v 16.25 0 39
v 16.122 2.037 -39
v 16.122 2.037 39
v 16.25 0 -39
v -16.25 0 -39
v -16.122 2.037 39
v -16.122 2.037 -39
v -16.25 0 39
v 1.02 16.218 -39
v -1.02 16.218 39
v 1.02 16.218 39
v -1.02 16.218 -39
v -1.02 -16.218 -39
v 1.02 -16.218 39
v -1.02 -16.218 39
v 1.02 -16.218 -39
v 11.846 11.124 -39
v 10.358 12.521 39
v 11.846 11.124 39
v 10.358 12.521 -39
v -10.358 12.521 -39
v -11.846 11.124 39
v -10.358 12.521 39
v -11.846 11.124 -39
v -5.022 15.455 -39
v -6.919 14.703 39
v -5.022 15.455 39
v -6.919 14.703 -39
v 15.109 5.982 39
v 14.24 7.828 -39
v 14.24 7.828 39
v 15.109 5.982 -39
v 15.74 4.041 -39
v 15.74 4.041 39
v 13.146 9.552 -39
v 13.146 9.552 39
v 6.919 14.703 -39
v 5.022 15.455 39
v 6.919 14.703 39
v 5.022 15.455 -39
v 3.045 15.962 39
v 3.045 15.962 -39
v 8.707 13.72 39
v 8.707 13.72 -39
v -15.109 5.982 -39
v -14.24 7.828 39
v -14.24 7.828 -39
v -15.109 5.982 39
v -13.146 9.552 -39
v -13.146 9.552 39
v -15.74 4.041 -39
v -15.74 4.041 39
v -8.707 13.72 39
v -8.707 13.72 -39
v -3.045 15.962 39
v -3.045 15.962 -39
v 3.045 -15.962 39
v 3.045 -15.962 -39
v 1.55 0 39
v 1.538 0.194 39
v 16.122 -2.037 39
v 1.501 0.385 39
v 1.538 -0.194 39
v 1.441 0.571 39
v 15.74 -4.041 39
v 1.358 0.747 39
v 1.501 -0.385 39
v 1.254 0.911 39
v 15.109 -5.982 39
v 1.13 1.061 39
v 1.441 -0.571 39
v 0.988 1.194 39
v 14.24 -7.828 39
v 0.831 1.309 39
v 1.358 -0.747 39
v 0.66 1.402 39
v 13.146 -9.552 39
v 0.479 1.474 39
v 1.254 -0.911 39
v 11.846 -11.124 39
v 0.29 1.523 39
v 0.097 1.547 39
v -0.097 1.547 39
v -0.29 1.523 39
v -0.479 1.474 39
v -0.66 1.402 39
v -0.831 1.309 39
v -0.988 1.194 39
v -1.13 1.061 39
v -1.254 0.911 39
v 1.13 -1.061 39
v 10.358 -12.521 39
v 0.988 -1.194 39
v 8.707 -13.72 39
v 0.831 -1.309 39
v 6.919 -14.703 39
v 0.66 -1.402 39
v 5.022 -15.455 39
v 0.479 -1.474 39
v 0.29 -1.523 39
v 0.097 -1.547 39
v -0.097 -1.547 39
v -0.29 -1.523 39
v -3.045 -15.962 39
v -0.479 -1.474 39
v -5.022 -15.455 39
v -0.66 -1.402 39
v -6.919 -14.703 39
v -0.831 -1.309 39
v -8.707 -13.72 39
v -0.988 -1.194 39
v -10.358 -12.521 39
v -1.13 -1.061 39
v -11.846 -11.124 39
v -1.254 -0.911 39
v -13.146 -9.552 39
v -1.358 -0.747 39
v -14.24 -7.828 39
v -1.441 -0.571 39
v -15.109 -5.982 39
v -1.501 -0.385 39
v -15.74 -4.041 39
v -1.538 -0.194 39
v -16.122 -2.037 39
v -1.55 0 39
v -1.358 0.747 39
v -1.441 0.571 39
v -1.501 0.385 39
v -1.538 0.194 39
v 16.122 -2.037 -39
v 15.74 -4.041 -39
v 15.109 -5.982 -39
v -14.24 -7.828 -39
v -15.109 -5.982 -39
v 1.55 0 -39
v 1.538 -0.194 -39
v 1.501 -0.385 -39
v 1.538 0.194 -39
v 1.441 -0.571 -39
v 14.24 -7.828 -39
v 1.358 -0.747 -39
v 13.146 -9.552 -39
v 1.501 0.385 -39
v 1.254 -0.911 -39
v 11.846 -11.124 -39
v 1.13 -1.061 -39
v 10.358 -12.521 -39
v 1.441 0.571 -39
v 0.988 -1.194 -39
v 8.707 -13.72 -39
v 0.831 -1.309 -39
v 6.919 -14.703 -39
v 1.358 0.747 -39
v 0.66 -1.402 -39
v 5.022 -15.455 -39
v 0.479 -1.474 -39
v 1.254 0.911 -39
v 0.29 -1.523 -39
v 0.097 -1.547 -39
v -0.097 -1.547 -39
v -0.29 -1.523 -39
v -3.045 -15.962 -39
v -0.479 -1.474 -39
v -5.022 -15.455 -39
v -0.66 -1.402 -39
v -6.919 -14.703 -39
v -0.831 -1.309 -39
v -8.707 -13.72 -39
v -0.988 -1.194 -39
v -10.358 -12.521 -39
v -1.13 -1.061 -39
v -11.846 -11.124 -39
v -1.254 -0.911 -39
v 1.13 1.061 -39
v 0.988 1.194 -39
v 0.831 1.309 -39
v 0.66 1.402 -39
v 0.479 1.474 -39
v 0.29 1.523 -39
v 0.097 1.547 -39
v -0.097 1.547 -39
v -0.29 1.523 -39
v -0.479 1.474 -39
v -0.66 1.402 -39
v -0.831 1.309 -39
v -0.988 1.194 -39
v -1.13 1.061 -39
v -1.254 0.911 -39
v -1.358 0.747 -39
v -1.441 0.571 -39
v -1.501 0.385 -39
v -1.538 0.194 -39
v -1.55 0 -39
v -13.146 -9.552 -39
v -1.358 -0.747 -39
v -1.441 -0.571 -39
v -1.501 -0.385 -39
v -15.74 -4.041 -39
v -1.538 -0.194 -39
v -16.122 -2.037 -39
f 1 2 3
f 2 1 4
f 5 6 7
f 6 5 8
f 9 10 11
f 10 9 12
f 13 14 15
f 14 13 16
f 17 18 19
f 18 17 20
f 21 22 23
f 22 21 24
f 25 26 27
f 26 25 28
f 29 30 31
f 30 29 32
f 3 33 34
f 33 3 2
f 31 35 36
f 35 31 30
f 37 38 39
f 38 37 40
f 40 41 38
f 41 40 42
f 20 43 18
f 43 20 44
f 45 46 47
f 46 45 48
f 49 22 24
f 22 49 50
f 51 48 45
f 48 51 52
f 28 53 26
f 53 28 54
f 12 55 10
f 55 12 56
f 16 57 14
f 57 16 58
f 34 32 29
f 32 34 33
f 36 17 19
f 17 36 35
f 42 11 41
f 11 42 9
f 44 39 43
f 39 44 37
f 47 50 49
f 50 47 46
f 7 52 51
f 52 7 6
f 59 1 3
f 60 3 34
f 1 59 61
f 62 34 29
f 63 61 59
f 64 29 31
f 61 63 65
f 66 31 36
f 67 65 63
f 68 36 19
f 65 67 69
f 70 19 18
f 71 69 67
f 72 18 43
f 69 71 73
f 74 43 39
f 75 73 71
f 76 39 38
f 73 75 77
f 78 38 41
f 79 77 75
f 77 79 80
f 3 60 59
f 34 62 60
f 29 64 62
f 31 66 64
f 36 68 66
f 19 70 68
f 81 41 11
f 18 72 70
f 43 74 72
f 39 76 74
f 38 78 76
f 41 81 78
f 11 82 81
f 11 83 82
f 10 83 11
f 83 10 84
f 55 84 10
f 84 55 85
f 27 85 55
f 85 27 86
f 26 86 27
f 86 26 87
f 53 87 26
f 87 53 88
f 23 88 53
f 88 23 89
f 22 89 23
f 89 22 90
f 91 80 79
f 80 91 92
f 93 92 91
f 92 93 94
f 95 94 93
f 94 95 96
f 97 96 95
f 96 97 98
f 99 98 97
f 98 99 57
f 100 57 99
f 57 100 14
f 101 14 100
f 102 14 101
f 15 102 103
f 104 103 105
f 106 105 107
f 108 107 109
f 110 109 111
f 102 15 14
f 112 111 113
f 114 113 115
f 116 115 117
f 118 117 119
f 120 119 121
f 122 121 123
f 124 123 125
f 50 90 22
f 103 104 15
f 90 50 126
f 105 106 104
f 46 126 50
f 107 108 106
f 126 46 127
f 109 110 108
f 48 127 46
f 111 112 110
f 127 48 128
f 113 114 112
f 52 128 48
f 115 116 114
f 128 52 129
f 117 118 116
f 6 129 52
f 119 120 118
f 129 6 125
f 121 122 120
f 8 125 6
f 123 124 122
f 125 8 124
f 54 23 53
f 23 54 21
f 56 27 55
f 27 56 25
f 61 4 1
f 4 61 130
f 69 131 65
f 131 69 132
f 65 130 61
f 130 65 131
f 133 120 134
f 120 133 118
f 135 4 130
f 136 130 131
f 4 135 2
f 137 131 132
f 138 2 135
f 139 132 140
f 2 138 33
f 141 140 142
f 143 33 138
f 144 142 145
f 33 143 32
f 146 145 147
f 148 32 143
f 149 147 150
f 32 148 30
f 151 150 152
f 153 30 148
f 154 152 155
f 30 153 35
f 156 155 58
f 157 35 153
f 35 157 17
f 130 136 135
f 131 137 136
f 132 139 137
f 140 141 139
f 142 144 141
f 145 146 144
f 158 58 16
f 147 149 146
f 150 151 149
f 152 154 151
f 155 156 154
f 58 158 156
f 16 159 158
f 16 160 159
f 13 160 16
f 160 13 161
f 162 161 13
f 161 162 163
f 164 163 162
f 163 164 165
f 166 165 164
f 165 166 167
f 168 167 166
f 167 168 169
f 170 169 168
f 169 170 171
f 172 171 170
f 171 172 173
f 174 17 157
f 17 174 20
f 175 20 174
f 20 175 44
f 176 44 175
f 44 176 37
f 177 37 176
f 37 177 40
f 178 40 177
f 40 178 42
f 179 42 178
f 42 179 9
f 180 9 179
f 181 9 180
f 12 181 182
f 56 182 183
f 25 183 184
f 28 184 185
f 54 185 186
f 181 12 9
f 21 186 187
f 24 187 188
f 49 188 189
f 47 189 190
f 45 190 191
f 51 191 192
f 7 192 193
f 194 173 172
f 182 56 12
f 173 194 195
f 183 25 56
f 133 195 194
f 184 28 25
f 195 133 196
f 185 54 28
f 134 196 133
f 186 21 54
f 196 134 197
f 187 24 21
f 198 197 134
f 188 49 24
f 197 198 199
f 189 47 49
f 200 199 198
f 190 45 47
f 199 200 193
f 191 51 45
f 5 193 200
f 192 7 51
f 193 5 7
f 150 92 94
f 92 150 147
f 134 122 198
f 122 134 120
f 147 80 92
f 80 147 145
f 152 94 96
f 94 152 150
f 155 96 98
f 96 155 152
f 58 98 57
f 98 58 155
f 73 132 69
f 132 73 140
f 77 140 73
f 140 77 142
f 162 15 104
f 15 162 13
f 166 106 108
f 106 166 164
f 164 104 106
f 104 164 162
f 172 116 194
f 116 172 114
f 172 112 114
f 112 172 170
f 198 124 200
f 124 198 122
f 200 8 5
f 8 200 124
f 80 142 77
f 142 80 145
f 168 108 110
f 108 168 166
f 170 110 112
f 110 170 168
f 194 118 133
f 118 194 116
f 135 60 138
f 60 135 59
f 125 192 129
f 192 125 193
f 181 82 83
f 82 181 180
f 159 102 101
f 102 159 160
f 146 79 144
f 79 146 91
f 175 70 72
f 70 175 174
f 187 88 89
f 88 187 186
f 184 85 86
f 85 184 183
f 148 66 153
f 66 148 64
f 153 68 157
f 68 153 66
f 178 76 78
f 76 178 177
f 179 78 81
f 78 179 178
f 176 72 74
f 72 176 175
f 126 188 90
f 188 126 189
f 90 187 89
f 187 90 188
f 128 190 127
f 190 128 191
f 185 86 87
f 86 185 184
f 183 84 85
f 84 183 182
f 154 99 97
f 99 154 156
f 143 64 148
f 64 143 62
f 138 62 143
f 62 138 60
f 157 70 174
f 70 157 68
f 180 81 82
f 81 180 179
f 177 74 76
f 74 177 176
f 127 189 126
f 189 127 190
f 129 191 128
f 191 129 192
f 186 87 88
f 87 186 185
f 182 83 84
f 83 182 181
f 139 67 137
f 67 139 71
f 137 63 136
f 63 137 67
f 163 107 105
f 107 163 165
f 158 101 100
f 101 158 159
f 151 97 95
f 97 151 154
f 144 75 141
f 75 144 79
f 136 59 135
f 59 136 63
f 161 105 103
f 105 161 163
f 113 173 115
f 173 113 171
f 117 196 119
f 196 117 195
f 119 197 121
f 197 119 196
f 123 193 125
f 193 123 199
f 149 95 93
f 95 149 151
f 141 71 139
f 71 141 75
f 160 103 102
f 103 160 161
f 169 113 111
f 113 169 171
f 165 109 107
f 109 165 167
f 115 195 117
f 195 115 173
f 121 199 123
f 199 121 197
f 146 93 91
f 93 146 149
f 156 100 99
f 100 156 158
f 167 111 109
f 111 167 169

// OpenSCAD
$fn = 50;


difference() {
	union() {
		translate(v = [0, 0, -39.0000000000]) {
			cylinder(h = 78, r = 16.2500000000);
		}
	}
	union() {
		translate(v = [0, 0, -100.0000000000]) {
			cylinder(h = 200, r = 1.5500000000);
		}
	}
}
